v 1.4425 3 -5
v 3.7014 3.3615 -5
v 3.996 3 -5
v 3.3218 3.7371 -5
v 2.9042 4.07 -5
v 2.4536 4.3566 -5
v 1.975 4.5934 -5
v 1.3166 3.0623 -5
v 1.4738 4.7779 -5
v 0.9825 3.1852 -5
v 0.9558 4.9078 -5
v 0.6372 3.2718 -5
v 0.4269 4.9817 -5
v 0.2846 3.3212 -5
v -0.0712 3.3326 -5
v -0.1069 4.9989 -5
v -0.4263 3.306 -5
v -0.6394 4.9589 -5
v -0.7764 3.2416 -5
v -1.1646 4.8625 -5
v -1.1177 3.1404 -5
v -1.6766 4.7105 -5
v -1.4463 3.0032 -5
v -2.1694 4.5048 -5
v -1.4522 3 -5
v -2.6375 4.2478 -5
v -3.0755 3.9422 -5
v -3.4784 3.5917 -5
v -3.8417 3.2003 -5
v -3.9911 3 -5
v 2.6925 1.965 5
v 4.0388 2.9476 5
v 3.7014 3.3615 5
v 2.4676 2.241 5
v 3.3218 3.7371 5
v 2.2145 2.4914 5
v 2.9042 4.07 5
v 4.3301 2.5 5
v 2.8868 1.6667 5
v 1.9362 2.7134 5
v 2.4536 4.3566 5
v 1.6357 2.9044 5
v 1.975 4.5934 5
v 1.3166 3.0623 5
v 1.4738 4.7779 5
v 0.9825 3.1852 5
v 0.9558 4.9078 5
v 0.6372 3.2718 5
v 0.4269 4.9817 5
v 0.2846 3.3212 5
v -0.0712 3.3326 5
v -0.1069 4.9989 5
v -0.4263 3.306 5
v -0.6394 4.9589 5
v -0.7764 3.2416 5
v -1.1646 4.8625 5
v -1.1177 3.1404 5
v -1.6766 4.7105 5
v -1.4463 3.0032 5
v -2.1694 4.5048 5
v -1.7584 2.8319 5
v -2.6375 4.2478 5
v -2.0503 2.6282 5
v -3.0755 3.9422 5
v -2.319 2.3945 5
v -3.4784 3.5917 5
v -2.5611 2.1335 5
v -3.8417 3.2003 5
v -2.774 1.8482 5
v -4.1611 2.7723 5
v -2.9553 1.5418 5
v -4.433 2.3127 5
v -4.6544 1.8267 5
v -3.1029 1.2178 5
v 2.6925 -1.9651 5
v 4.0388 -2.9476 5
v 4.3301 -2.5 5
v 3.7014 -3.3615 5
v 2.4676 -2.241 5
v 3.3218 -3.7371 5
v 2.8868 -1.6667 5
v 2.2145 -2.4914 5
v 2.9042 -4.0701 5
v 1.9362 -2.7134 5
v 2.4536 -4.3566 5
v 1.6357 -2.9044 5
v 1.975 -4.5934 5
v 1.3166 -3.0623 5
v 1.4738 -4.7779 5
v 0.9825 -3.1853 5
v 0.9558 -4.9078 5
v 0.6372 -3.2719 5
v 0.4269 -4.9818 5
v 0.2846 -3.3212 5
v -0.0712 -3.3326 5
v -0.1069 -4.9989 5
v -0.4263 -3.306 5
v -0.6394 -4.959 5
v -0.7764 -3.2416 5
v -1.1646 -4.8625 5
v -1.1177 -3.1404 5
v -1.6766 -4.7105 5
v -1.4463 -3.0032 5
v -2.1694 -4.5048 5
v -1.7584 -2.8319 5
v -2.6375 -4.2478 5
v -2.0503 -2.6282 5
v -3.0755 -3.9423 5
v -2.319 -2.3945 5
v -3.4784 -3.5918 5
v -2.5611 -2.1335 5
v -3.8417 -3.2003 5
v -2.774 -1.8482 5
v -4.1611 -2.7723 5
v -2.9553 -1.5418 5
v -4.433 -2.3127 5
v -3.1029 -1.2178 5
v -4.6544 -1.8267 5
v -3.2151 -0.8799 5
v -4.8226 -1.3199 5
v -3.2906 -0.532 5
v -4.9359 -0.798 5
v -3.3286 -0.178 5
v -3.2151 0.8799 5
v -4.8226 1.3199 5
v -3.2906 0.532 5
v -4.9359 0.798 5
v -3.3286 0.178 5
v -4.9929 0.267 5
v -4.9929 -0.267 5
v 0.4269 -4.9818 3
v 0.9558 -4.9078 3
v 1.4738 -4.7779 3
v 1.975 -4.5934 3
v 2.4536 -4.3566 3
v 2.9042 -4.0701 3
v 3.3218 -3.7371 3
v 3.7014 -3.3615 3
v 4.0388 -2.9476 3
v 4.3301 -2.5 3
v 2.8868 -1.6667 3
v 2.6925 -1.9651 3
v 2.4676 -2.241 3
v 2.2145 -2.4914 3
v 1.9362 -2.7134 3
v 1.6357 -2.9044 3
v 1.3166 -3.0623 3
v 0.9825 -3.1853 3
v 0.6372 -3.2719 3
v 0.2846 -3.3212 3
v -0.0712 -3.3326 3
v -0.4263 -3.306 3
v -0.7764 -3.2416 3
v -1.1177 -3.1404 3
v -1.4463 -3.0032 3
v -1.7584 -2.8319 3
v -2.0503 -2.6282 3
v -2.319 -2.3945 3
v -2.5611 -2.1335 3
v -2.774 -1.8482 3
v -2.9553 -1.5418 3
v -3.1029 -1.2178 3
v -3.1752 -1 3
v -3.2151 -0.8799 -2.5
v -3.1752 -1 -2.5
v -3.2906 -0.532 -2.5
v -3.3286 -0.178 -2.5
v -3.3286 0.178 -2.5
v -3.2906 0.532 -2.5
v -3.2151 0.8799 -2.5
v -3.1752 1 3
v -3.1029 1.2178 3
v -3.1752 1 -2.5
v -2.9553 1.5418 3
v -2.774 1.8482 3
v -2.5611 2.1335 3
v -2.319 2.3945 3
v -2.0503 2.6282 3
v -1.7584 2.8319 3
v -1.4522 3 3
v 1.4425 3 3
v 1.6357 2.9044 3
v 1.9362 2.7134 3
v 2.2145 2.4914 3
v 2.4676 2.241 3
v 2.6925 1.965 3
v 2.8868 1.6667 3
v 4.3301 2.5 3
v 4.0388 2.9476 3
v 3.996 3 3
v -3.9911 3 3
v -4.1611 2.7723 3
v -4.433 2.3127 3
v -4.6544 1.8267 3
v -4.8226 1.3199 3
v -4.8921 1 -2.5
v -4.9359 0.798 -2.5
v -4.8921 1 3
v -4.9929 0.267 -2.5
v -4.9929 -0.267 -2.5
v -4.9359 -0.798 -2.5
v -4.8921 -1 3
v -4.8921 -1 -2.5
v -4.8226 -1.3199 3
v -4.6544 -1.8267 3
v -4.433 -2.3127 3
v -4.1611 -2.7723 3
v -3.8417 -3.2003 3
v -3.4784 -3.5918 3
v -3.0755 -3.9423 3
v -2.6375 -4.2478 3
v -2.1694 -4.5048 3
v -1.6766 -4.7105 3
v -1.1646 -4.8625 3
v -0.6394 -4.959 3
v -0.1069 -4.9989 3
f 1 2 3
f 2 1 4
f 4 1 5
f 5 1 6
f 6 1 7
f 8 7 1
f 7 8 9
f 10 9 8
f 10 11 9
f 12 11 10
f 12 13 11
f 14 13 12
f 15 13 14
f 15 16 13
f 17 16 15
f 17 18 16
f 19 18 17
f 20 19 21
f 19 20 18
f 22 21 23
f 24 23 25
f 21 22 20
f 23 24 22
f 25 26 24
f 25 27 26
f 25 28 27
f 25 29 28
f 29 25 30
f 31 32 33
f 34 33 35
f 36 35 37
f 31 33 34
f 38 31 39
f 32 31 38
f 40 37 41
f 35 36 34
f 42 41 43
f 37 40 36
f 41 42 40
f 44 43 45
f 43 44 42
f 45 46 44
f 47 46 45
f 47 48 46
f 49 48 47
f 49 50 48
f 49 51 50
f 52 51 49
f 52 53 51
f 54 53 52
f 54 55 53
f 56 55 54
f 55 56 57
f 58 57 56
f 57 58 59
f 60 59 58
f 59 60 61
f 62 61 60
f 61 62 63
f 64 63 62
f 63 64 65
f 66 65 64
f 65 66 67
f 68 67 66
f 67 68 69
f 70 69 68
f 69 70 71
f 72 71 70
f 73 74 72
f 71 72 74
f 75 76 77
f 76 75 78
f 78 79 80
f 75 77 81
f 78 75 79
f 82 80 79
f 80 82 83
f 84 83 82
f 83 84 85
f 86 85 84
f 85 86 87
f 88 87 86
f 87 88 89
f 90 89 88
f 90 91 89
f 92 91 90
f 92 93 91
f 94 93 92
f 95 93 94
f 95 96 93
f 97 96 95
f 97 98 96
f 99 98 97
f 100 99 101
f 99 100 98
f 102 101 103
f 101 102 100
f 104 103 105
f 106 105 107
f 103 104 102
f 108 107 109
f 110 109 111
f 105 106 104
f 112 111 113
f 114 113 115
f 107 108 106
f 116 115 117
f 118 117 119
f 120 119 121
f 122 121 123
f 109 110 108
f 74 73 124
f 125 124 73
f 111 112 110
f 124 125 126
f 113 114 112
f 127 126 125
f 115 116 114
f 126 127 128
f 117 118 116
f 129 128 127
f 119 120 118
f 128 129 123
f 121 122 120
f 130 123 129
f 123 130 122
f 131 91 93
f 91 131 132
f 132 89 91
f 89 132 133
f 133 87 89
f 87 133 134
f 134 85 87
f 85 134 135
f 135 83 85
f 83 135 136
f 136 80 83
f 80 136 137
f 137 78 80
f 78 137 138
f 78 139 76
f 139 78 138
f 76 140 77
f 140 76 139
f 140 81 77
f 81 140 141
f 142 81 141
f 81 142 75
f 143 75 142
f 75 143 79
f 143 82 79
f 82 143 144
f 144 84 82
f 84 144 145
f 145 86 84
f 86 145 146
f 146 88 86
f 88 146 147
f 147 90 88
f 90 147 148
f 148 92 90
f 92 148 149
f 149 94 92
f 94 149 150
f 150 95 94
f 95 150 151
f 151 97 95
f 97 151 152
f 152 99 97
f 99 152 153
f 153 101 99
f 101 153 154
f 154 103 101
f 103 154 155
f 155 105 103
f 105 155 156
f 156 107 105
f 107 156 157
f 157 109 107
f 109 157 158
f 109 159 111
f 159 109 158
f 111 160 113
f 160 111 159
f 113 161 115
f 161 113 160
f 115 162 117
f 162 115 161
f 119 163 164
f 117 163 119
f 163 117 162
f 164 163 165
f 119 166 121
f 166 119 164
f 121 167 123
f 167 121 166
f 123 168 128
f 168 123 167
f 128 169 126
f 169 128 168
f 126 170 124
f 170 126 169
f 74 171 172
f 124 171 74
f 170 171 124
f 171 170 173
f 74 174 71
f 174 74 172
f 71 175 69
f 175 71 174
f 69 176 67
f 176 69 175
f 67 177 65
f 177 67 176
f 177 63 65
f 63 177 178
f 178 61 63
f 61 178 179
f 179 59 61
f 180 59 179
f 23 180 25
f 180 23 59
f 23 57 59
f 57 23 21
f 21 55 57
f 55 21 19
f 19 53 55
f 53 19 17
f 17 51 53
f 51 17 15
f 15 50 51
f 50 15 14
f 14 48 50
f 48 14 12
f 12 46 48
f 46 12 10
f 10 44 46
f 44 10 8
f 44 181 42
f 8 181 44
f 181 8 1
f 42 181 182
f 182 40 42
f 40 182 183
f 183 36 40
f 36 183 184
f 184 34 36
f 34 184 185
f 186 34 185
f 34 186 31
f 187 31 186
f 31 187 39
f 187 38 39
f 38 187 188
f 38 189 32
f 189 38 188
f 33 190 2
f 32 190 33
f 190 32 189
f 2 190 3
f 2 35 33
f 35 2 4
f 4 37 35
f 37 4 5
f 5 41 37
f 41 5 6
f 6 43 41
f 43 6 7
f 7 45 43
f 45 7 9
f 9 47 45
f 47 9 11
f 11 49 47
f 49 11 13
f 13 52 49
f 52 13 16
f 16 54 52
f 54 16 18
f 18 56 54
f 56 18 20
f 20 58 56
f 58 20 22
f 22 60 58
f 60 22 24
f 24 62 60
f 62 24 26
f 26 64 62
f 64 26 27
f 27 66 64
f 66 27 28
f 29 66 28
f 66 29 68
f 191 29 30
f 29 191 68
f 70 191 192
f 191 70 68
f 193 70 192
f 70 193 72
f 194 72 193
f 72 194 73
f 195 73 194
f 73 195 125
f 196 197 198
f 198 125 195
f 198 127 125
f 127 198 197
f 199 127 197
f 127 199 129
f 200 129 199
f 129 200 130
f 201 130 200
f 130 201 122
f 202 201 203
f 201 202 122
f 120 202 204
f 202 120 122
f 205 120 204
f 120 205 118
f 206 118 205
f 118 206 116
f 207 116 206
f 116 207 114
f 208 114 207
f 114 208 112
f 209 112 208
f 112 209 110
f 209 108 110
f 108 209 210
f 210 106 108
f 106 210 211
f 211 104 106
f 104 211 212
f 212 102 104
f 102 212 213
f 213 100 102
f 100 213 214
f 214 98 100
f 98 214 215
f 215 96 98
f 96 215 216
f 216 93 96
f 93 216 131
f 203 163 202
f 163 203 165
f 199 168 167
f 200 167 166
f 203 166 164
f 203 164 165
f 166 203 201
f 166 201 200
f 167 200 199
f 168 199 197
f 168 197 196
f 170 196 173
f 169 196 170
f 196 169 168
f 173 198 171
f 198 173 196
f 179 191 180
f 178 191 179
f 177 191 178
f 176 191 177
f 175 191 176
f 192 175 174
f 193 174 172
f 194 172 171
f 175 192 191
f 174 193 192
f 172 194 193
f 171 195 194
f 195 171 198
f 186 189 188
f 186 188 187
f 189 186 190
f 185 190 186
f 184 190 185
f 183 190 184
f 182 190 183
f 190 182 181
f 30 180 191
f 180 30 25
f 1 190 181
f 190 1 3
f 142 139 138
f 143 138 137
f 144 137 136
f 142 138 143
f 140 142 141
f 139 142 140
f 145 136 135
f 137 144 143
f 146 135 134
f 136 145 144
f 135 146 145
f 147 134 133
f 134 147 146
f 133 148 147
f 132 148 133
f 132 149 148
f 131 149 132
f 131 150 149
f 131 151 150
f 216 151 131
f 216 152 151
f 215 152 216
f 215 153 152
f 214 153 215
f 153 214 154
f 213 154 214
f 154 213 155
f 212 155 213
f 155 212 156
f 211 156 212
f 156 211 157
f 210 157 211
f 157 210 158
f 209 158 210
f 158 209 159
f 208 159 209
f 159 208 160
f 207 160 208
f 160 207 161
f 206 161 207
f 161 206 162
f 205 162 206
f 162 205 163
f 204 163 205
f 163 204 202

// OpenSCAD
// Generated by SolidPython 1.1.3 on 2025-03-05 22:55:32
$fn=50;


intersection() {
	translate(v = [-5.0000000000, -5.0000000000, -5.0000000000]) {
		linear_extrude(height = 10) {
			polygon(points = [[9.3301270189, 7.5000000000], [9.0387948484, 7.9475644476], [8.7013899854, 8.3615044513], [8.3217613875, 8.7370979763], [7.9042396813, 9.0700604263], [7.4535877600, 9.3565935206], [6.9749464512, 9.5934286231], [6.4737758721, 9.7778640289], [5.9557931435, 9.9077957850], [5.4269071715, 9.9817416901], [4.8931512411, 9.9988582039], [4.3606141916, 9.9589500691], [3.8353709579, 9.8624725392], [3.3234132705, 9.7105261849], [2.8305813044, 9.5048443395], [2.3624970575, 9.2477733259], [1.9245002169, 8.9422456905], [1.5215872470, 8.5917467505], [1.1583543913, 8.2002748347], [0.8389452414, 7.7722956725], [0.5670034681, 7.3126914512], [0.3456312568, 6.8267051218], [0.1773539185, 6.3198805903], [0.0640910829, 5.7979994752], [0.0071347997, 5.2670151533], [0.0071347997, 4.7329848467], [0.0640910829, 4.2020005248], [0.1773539185, 3.6801194097], [0.3456312568, 3.1732948782], [0.5670034681, 2.6873085488], [0.8389452414, 2.2277043275], [1.1583543913, 1.7997251653], [1.5215872470, 1.4082532495], [1.9245002169, 1.0577543095], [2.3624970575, 0.7522266741], [2.8305813044, 0.4951556605], [3.3234132705, 0.2894738151], [3.8353709579, 0.1375274608], [4.3606141916, 0.0410499309], [4.8931512411, 0.0011417961], [5.4269071715, 0.0182583099], [5.9557931435, 0.0922042150], [6.4737758721, 0.2221359711], [6.9749464512, 0.4065713769], [7.4535877600, 0.6434064794], [7.9042396813, 0.9299395737], [8.3217613875, 1.2629020237], [8.7013899854, 1.6384955487], [9.0387948484, 2.0524355524], [9.3301270189, 2.5000000000], [7.8867513459, 3.3333333333], [7.6925298989, 3.0349570350], [7.4675933236, 2.7589970325], [7.2145075917, 2.5086013491], [6.9361597875, 2.2866263825], [6.6357251733, 2.0956043196], [6.3166309674, 1.9377142513], [5.9825172480, 1.8147573140], [5.6371954290, 1.7281361434], [5.2846047810, 1.6788388733], [4.9287674940, 1.6674278641], [4.5737427944, 1.6940332873], [4.2235806386, 1.7583516405], [3.8822755137, 1.8596492101], [3.5537208696, 1.9967704403], [3.2416647050, 2.1681511161], [2.9496668113, 2.3718362063], [2.6810581647, 2.6055021663], [2.4389029276, 2.8664834436], [2.2259634943, 3.1518028850], [2.0446689788, 3.4582056992], [1.8970875045, 3.7821965854], [1.7849026123, 4.1200796064], [1.7093940553, 4.4680003499], [1.6714231998, 4.8219898978], [1.6714231998, 5.1780101022], [1.7093940553, 5.5319996501], [1.7849026123, 5.8799203936], [1.8970875045, 6.2178034146], [2.0446689788, 6.5417943008], [2.2259634943, 6.8481971150], [2.4389029276, 7.1335165564], [2.6810581647, 7.3944978337], [2.9496668113, 7.6281637937], [3.2416647050, 7.8318488839], [3.5537208696, 8.0032295597], [3.8822755137, 8.1403507899], [4.2235806386, 8.2416483595], [4.5737427944, 8.3059667127], [4.9287674940, 8.3325721359], [5.2846047810, 8.3211611267], [5.6371954290, 8.2718638566], [5.9825172480, 8.1852426860], [6.3166309674, 8.0622857487], [6.6357251733, 7.9043956804], [6.9361597875, 7.7133736175], [7.2145075917, 7.4913986509], [7.4675933236, 7.2410029675], [7.6925298989, 6.9650429650], [7.8867513459, 6.6666666667]]);
		}
	}
	rotate(a = 90, v = [0, 1, 0]) {
		translate(v = [-5.0000000000, -5.0000000000, -5.0000000000]) {
			linear_extrude(height = 10) {
				polygon(points = [[0, 0], [2.0000000000, 0], [2.0000000000, 4.0000000000], [7.5000000000, 4.0000000000], [7.5000000000, 6.0000000000], [2.0000000000, 6.0000000000], [2.0000000000, 8.0000000000], [10, 8.0000000000], [10, 10], [0, 10]]);
			}
		}
	}
}
/***********************************************
*********      SolidPython code:      **********
************************************************
 
from solid import *
from solid.utils import *

import math
import matplotlib.pyplot as plt
import subprocess
import os
import grok_letters as grok
import grok_think as grok_think
import letters as let
import o1_letters as o1
import letter_holes as letter_holes

def arc_points(radius, start_angle, end_angle, center=[0,0], num_points=50):
    angles = [start_angle + i * (end_angle - start_angle) / (num_points - 1)
              for i in range(num_points)]
    points = [
        (center[0] + radius * math.cos(math.radians(angle)),
         center[1] + radius * math.sin(math.radians(angle)))
        for angle in angles
    ]
    return points

class Letter2D:
    def __init__(self, letter, scale):
        self.letter = letter
        self.scale = scale
        self.shape = self.generate()
    
    def get_letter_points(self):
        points = getattr(let, self.letter)
        # points = getattr(o1, self.letter)
        # points = getattr(grok, self.letter)
        scaled_points = [(point[0] * self.scale, point[1] * self.scale) for point in points]
        return scaled_points

    def get_letter_holes(self):
        try:
            holes = getattr(letter_holes, self.letter)
        except:
            holes = []

        scaled_holes = [letter_holes.Hole(hole.radius*self.scale, hole.x*self.scale, hole.y*self.scale) for hole in holes]
        return scaled_holes

    
    def generate(self):
        shape = polygon(points=self.get_letter_points())
        holes = self.get_letter_holes()

        if holes:
            for hole in holes:
                circle_hole = circle(r=hole.radius)
                positioned_hole = translate([hole.x, hole.y])(circle_hole)
                shape = difference()(shape, positioned_hole)
        return shape
    

    def render(self):
        scad_render_to_file(self.shape, f"output/{self.name}.scad", file_header='$fn=50;')
        subprocess.run(["C:\\Program Files\\OpenSCAD\\openscad.exe", "-o", f"output\\{self.name}.stl", f"output\\{self.name}.scad"])


class TwoLetter3D:
    def __init__(self, height, letterA, letterB=None):
        self.height = height
        self.letterA = letterA
        self.letterB = letterB
    

    def generate_3d_letter(self, letter):
        letter = letter.upper()
        # TODO: add catch here for is letter is not a letter
        shape = Letter2D(letter, self.height).generate()
        shape_3d = linear_extrude(height=self.height)(shape)
        centered_shape_3d = translate([-self.height/2, -self.height/2, -self.height/2])(shape_3d)
        return centered_shape_3d


    def render(self):
        letterA3D = self.generate_3d_letter(self.letterA)

        if self.letterB:
            letterB3D = self.generate_3d_letter(self.letterB)
            letterB3D = rotate(a=90, v=[0,1,0])(letterB3D)

            combined = intersection()(letterA3D, letterB3D)
            file_name = self.letterA + self.letterB
            scad_render_to_file(combined, f"output/{file_name}.scad", file_header='$fn=50;')
            subprocess.run(["C:\\Program Files\\OpenSCAD\\openscad.exe", "-o", f"output\\{file_name}.stl", f"output\\{file_name}.scad"])
            return
        else:
            # file_name = "o1_" + self.letterA
            # file_name = "grok_think_" + self.letterA
            file_name = self.letterA
            # file_name = "grok_" + self.letterA
            scad_render_to_file(letterA3D, f"output/{file_name}.scad", file_header='$fn=50;')
            subprocess.run(["C:\\Program Files\\OpenSCAD\\openscad.exe", "-o", f"output\\{file_name}.stl", f"output\\{file_name}.scad"])
            # subprocess.run(["openscad", "-o", f"output\\{file_name}.png", f"output\\{file_name}.scad", "--imgsize=800,600", "--autocenter"])
            subprocess.run(["openscad", "-o", f"output\\{file_name}.png", f"output\\{file_name}.scad", "--imgsize=800,600", "--camera=0,0,30,0,0,0", "--viewall", "--autocenter", "--projection=o"])
            os.remove(f"output/{file_name}.scad")
            return
                


if __name__ == "__main__":
    os.makedirs("output", exist_ok=True)

    # Generate a letter
    # letter = input()
    # shape = TwoLetter3D(10, letter)
    # shape.render()
    
    # letters = [chr(x) for x in range(ord('A'), ord('J') + 1)]

    # # Generate all combos
    # for letter in letters:
    #     for other_letter in letters:
    #         shape = TwoLetter3D(10, letter, other_letter)
    #         shape.render()

    # Generate an input combo
    letter1 = input("Enter the first letter:")
    letter2 = input("Enter the second letter:")
    shape = TwoLetter3D(10, letter1, letter2)
    shape.render() 
 
************************************************/
